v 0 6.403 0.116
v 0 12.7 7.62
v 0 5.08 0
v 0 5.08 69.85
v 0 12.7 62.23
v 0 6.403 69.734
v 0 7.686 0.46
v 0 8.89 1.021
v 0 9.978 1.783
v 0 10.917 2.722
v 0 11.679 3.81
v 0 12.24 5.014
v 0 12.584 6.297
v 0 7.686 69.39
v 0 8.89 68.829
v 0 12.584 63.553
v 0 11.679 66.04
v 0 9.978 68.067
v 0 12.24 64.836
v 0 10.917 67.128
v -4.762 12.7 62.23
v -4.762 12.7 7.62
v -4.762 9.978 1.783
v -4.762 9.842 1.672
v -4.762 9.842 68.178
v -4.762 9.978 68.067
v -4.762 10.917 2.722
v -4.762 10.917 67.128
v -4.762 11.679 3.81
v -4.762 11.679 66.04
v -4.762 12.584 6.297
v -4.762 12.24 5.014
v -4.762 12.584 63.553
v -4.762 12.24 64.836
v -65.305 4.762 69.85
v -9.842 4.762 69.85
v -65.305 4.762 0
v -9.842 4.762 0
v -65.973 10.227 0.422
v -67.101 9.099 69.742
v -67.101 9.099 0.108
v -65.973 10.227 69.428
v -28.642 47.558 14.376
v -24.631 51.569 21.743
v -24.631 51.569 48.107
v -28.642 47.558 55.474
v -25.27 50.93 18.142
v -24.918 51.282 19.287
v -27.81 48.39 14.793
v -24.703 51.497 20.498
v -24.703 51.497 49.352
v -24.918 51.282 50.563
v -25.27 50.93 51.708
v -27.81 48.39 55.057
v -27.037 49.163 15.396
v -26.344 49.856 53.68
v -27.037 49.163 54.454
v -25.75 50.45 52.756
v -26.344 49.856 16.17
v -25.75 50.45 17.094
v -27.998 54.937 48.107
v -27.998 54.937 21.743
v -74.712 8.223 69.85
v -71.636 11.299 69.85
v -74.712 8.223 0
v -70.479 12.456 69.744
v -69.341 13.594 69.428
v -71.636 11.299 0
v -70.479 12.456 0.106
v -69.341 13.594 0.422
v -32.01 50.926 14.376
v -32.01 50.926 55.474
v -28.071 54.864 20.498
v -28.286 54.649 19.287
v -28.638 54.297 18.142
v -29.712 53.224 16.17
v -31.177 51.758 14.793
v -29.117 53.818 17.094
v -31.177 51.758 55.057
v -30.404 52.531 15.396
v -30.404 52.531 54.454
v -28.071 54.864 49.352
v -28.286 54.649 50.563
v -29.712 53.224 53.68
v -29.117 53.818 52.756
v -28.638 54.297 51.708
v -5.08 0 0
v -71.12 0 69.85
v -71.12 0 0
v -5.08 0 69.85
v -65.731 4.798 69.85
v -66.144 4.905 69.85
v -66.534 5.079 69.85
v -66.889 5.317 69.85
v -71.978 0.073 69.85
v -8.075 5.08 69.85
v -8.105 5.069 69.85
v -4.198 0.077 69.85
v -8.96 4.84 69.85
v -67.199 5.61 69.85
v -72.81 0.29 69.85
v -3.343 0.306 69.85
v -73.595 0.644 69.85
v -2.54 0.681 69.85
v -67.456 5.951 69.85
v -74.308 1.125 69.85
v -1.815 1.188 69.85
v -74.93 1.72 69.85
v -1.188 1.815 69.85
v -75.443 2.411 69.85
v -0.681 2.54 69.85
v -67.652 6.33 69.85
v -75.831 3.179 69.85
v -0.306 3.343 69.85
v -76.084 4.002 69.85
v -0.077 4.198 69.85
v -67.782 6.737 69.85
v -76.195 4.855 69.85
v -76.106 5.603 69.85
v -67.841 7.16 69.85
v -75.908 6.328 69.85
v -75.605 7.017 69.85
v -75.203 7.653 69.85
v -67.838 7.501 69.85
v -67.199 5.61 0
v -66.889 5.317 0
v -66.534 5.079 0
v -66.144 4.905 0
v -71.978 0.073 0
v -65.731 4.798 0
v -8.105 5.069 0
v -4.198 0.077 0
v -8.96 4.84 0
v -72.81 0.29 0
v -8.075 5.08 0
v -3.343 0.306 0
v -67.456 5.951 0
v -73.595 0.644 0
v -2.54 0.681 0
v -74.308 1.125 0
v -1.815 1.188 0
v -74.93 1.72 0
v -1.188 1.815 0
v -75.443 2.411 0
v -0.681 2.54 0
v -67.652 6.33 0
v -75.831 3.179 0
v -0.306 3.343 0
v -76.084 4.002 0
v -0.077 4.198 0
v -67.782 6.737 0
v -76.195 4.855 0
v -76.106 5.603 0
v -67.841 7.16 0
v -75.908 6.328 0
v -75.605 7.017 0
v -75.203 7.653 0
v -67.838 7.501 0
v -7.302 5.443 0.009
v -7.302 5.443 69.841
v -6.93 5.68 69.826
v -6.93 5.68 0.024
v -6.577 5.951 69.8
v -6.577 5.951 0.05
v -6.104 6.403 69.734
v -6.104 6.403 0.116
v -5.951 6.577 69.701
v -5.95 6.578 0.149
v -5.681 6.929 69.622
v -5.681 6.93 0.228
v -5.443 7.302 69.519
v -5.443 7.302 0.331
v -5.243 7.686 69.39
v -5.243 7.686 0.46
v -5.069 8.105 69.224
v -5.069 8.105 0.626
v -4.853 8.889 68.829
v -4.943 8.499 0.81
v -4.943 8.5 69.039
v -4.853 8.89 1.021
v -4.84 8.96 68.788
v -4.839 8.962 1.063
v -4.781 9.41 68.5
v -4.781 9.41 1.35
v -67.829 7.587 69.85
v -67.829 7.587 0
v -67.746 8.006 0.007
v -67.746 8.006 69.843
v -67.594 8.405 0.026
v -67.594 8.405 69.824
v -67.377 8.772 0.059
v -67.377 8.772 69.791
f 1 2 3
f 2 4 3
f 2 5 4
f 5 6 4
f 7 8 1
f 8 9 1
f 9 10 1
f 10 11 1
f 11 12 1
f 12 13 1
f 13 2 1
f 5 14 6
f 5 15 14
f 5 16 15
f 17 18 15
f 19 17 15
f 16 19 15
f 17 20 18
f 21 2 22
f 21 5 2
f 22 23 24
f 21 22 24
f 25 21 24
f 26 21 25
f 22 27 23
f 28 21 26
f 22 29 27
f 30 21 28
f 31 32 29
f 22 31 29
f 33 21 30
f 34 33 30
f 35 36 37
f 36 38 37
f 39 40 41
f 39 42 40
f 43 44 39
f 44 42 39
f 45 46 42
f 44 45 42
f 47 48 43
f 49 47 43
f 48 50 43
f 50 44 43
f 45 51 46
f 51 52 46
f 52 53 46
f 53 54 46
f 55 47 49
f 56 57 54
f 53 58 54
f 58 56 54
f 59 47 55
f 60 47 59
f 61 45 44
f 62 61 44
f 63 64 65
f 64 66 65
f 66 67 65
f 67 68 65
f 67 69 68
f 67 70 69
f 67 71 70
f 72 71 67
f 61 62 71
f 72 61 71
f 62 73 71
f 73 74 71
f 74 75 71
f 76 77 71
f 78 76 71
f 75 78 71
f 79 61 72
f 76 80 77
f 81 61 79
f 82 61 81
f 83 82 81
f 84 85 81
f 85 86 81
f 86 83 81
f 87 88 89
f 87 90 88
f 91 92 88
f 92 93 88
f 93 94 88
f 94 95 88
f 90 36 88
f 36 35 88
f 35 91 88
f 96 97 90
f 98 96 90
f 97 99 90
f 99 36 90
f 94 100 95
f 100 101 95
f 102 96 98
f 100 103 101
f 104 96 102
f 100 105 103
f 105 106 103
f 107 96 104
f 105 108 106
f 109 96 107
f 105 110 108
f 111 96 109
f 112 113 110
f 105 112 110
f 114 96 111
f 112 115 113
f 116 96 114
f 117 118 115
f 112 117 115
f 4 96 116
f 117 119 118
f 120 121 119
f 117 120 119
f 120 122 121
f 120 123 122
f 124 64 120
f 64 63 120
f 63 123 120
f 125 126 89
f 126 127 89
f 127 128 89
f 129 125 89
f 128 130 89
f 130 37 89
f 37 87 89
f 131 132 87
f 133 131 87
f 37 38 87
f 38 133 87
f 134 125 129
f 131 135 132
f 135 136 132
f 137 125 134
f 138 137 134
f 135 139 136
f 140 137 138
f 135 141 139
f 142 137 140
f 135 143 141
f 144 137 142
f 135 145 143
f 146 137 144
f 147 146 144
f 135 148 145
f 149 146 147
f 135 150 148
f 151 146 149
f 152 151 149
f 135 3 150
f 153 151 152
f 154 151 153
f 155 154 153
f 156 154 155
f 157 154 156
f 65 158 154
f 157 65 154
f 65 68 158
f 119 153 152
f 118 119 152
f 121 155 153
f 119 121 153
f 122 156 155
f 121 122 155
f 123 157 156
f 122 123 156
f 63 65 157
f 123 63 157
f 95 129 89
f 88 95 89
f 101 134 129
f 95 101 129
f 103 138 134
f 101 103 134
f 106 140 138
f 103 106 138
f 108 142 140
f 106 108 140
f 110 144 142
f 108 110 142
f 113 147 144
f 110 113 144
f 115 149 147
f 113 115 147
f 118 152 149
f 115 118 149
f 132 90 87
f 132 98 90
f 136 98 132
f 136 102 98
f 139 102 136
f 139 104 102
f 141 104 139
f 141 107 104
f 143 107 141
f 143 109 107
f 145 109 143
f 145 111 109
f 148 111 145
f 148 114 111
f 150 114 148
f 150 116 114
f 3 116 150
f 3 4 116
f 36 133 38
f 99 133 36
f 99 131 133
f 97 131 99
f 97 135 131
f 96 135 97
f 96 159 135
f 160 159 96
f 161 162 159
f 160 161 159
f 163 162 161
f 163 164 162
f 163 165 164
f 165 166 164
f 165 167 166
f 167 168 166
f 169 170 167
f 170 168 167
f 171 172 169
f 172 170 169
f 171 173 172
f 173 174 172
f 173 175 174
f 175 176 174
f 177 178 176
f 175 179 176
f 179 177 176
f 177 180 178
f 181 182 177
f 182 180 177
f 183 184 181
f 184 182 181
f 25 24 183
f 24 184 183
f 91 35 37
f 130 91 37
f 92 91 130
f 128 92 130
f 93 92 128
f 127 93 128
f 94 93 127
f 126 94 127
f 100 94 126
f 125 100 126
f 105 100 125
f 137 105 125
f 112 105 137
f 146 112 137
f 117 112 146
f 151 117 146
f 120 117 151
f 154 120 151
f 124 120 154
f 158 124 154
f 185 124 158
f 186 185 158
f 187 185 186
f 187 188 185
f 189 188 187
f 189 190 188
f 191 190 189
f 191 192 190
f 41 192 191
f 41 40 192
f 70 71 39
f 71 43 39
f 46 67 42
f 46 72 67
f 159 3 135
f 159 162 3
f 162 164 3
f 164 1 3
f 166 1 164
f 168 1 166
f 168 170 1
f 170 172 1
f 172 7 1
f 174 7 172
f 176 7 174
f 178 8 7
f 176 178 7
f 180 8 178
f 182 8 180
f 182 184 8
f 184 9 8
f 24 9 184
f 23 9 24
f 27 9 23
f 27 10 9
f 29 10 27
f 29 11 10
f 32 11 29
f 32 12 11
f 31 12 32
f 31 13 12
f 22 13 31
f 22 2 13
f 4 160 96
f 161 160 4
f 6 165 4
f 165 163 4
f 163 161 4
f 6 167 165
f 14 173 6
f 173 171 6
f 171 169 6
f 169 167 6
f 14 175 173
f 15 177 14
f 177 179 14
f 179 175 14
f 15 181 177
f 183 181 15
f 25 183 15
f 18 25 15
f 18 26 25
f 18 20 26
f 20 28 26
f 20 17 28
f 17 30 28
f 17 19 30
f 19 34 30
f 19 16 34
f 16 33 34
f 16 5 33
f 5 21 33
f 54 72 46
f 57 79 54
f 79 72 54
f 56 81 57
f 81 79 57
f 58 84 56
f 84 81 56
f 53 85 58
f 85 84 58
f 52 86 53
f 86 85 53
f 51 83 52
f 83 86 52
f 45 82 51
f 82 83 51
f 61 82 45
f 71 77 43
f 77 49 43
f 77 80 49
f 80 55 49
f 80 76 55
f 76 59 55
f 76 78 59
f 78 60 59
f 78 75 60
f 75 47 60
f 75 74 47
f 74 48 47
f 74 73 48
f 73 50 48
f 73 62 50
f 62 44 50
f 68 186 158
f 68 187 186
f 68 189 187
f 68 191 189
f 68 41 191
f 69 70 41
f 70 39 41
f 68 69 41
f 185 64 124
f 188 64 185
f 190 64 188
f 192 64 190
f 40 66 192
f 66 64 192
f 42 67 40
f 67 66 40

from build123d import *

# Parameters (mm, degrees)
BOSS_EXTRUDE1_DEPTH = 69.85
FILLET1_R           = 5.08
FILLET3_R           = 2.54
CUT_EXTRUDE1_REACH  = 93.204
FILLET2_R           = 7.62
FILLET4_R           = 12.7


with BuildPart() as part:
    # Sketch1 → Boss-Extrude1 (new body)
    with BuildSketch(Plane.XY):
        Polygon((-76.2, 6.735192091), (-27.998371742, 54.936820349), (-24.630775696, 51.569224304), (-71.4375, 4.7625), (-4.7625, 4.7625), (-4.7625, 12.7), (0, 12.7), (0, 6.630240755), (0, 0), (-76.2, 0), align=None)
    extrude(amount=BOSS_EXTRUDE1_DEPTH)

    # Fillet1
    # the kernel refuses this fillet: 5.08 mm, written as the material it adds along each edge
    with BuildSketch(Plane(origin=(-4.7625, 4.7625, 0), x_dir=(0, 1, 0), z_dir=(0, 0, 1))) as fillet1_piece_1:
        with BuildLine():
            CenterArc((FILLET1_R, FILLET1_R), FILLET1_R, 180, 90)
            Line((0, FILLET1_R), (0, 0))
            Line((0, 0), (FILLET1_R, 0))
        make_face()
    extrude(amount=69.85)
    # the kernel refuses this fillet: 5.08 mm, written as the material it takes off along each edge
    with BuildSketch(Plane(origin=(-76.2, 0, -12.7), x_dir=(0, 1, 0), z_dir=(0, 0, 1)), Plane(origin=(0, 0, -12.7), x_dir=(-1, 0, 0), z_dir=(0, 0, 1))) as fillet1_2_piece_1:
        with BuildLine():
            CenterArc((FILLET1_R, -FILLET1_R), FILLET1_R, 90, 90)
            Line((0, -FILLET1_R), (0, 0))
            Line((0, 0), (FILLET1_R, 0))
        make_face()
    extrude(amount=95.25, mode=Mode.SUBTRACT)
    with BuildSketch(Plane(origin=(-76.2, 6.735192091, -5.260512242), x_dir=(0.7071067811865465, 0.7071067811865486, 0), z_dir=(0, 0, 1))) as fillet1_2_piece_2:
        with BuildLine():
            CenterArc((FILLET1_R * 0.414213562373, -FILLET1_R), FILLET1_R, 90, 45)
            Line((-FILLET1_R * 0.292893218813, -FILLET1_R * 0.292893218813), (0, 0))
            Line((0, 0), (FILLET1_R * 0.414213562373, 0))
        make_face()
    extrude(amount=80.371024484, mode=Mode.SUBTRACT)

    # Fillet3
    fillet3_edges = [part.edges().sort_by_distance(p)[0] for p in [
        (-71.4375, 4.7625, 34.925),
    ]]
    fillet(fillet3_edges, radius=FILLET3_R)

    # Sketch2 → Cut-Extrude1 (cut, up to next)
    with BuildSketch(Plane(origin=(-41.467596045, 41.467596045, 0), x_dir=(0, 0, 1), z_dir=(-0.7071067811865489, 0.7071067811865462, 0)), mode=Mode.PRIVATE) as cut_extrude1_sk1:
        Polygon((15.875, 19.048359685), (0, -41.014242187), (0, 19.048359685), align=None)
    cut_extrude1_tool1 = extrude(cut_extrude1_sk1.sketch, amount=-CUT_EXTRUDE1_REACH, mode=Mode.PRIVATE) & part.part
    # Sketch2 → Cut-Extrude1 (cut, up to next)
    with BuildSketch(Plane(origin=(-41.467596045, 41.467596045, 0), x_dir=(0, 0, 1), z_dir=(-0.7071067811865489, 0.7071067811865462, 0)), mode=Mode.PRIVATE) as cut_extrude1_sk2:
        Polygon((69.85, 19.048359685), (53.975, 19.048359685), (69.85, -41.014242187), align=None)
    cut_extrude1_tool2 = extrude(cut_extrude1_sk2.sketch, amount=-CUT_EXTRUDE1_REACH, mode=Mode.PRIVATE) & part.part
    add(cut_extrude1_tool1.solids().sort_by_distance((-42.155263, 40.779929, 5.291667))[0], mode=Mode.SUBTRACT)
    add(cut_extrude1_tool2.solids().sort_by_distance((-42.155263, 40.779929, 64.558333))[0], mode=Mode.SUBTRACT)

    # Fillet2
    fillet2_edges = [part.edges().sort_by_distance(p)[0] for p in [
        (-2.38125, 12.7, 0),
        (-2.38125, 12.7, 69.85),
        (-26.314573719, 53.253022326, 53.975),
        (-26.314573719, 53.253022326, 15.875),
    ]]
    fillet(fillet2_edges, radius=FILLET2_R)

    # Fillet4
    fillet4_edges = [part.edges().sort_by_distance(p)[0] for p in [
        (-68.785246798, 10.782349247, 0),
        (-68.785246798, 10.782349247, 69.85),
    ]]
    fillet(fillet4_edges, radius=FILLET4_R)


solid = part.part
